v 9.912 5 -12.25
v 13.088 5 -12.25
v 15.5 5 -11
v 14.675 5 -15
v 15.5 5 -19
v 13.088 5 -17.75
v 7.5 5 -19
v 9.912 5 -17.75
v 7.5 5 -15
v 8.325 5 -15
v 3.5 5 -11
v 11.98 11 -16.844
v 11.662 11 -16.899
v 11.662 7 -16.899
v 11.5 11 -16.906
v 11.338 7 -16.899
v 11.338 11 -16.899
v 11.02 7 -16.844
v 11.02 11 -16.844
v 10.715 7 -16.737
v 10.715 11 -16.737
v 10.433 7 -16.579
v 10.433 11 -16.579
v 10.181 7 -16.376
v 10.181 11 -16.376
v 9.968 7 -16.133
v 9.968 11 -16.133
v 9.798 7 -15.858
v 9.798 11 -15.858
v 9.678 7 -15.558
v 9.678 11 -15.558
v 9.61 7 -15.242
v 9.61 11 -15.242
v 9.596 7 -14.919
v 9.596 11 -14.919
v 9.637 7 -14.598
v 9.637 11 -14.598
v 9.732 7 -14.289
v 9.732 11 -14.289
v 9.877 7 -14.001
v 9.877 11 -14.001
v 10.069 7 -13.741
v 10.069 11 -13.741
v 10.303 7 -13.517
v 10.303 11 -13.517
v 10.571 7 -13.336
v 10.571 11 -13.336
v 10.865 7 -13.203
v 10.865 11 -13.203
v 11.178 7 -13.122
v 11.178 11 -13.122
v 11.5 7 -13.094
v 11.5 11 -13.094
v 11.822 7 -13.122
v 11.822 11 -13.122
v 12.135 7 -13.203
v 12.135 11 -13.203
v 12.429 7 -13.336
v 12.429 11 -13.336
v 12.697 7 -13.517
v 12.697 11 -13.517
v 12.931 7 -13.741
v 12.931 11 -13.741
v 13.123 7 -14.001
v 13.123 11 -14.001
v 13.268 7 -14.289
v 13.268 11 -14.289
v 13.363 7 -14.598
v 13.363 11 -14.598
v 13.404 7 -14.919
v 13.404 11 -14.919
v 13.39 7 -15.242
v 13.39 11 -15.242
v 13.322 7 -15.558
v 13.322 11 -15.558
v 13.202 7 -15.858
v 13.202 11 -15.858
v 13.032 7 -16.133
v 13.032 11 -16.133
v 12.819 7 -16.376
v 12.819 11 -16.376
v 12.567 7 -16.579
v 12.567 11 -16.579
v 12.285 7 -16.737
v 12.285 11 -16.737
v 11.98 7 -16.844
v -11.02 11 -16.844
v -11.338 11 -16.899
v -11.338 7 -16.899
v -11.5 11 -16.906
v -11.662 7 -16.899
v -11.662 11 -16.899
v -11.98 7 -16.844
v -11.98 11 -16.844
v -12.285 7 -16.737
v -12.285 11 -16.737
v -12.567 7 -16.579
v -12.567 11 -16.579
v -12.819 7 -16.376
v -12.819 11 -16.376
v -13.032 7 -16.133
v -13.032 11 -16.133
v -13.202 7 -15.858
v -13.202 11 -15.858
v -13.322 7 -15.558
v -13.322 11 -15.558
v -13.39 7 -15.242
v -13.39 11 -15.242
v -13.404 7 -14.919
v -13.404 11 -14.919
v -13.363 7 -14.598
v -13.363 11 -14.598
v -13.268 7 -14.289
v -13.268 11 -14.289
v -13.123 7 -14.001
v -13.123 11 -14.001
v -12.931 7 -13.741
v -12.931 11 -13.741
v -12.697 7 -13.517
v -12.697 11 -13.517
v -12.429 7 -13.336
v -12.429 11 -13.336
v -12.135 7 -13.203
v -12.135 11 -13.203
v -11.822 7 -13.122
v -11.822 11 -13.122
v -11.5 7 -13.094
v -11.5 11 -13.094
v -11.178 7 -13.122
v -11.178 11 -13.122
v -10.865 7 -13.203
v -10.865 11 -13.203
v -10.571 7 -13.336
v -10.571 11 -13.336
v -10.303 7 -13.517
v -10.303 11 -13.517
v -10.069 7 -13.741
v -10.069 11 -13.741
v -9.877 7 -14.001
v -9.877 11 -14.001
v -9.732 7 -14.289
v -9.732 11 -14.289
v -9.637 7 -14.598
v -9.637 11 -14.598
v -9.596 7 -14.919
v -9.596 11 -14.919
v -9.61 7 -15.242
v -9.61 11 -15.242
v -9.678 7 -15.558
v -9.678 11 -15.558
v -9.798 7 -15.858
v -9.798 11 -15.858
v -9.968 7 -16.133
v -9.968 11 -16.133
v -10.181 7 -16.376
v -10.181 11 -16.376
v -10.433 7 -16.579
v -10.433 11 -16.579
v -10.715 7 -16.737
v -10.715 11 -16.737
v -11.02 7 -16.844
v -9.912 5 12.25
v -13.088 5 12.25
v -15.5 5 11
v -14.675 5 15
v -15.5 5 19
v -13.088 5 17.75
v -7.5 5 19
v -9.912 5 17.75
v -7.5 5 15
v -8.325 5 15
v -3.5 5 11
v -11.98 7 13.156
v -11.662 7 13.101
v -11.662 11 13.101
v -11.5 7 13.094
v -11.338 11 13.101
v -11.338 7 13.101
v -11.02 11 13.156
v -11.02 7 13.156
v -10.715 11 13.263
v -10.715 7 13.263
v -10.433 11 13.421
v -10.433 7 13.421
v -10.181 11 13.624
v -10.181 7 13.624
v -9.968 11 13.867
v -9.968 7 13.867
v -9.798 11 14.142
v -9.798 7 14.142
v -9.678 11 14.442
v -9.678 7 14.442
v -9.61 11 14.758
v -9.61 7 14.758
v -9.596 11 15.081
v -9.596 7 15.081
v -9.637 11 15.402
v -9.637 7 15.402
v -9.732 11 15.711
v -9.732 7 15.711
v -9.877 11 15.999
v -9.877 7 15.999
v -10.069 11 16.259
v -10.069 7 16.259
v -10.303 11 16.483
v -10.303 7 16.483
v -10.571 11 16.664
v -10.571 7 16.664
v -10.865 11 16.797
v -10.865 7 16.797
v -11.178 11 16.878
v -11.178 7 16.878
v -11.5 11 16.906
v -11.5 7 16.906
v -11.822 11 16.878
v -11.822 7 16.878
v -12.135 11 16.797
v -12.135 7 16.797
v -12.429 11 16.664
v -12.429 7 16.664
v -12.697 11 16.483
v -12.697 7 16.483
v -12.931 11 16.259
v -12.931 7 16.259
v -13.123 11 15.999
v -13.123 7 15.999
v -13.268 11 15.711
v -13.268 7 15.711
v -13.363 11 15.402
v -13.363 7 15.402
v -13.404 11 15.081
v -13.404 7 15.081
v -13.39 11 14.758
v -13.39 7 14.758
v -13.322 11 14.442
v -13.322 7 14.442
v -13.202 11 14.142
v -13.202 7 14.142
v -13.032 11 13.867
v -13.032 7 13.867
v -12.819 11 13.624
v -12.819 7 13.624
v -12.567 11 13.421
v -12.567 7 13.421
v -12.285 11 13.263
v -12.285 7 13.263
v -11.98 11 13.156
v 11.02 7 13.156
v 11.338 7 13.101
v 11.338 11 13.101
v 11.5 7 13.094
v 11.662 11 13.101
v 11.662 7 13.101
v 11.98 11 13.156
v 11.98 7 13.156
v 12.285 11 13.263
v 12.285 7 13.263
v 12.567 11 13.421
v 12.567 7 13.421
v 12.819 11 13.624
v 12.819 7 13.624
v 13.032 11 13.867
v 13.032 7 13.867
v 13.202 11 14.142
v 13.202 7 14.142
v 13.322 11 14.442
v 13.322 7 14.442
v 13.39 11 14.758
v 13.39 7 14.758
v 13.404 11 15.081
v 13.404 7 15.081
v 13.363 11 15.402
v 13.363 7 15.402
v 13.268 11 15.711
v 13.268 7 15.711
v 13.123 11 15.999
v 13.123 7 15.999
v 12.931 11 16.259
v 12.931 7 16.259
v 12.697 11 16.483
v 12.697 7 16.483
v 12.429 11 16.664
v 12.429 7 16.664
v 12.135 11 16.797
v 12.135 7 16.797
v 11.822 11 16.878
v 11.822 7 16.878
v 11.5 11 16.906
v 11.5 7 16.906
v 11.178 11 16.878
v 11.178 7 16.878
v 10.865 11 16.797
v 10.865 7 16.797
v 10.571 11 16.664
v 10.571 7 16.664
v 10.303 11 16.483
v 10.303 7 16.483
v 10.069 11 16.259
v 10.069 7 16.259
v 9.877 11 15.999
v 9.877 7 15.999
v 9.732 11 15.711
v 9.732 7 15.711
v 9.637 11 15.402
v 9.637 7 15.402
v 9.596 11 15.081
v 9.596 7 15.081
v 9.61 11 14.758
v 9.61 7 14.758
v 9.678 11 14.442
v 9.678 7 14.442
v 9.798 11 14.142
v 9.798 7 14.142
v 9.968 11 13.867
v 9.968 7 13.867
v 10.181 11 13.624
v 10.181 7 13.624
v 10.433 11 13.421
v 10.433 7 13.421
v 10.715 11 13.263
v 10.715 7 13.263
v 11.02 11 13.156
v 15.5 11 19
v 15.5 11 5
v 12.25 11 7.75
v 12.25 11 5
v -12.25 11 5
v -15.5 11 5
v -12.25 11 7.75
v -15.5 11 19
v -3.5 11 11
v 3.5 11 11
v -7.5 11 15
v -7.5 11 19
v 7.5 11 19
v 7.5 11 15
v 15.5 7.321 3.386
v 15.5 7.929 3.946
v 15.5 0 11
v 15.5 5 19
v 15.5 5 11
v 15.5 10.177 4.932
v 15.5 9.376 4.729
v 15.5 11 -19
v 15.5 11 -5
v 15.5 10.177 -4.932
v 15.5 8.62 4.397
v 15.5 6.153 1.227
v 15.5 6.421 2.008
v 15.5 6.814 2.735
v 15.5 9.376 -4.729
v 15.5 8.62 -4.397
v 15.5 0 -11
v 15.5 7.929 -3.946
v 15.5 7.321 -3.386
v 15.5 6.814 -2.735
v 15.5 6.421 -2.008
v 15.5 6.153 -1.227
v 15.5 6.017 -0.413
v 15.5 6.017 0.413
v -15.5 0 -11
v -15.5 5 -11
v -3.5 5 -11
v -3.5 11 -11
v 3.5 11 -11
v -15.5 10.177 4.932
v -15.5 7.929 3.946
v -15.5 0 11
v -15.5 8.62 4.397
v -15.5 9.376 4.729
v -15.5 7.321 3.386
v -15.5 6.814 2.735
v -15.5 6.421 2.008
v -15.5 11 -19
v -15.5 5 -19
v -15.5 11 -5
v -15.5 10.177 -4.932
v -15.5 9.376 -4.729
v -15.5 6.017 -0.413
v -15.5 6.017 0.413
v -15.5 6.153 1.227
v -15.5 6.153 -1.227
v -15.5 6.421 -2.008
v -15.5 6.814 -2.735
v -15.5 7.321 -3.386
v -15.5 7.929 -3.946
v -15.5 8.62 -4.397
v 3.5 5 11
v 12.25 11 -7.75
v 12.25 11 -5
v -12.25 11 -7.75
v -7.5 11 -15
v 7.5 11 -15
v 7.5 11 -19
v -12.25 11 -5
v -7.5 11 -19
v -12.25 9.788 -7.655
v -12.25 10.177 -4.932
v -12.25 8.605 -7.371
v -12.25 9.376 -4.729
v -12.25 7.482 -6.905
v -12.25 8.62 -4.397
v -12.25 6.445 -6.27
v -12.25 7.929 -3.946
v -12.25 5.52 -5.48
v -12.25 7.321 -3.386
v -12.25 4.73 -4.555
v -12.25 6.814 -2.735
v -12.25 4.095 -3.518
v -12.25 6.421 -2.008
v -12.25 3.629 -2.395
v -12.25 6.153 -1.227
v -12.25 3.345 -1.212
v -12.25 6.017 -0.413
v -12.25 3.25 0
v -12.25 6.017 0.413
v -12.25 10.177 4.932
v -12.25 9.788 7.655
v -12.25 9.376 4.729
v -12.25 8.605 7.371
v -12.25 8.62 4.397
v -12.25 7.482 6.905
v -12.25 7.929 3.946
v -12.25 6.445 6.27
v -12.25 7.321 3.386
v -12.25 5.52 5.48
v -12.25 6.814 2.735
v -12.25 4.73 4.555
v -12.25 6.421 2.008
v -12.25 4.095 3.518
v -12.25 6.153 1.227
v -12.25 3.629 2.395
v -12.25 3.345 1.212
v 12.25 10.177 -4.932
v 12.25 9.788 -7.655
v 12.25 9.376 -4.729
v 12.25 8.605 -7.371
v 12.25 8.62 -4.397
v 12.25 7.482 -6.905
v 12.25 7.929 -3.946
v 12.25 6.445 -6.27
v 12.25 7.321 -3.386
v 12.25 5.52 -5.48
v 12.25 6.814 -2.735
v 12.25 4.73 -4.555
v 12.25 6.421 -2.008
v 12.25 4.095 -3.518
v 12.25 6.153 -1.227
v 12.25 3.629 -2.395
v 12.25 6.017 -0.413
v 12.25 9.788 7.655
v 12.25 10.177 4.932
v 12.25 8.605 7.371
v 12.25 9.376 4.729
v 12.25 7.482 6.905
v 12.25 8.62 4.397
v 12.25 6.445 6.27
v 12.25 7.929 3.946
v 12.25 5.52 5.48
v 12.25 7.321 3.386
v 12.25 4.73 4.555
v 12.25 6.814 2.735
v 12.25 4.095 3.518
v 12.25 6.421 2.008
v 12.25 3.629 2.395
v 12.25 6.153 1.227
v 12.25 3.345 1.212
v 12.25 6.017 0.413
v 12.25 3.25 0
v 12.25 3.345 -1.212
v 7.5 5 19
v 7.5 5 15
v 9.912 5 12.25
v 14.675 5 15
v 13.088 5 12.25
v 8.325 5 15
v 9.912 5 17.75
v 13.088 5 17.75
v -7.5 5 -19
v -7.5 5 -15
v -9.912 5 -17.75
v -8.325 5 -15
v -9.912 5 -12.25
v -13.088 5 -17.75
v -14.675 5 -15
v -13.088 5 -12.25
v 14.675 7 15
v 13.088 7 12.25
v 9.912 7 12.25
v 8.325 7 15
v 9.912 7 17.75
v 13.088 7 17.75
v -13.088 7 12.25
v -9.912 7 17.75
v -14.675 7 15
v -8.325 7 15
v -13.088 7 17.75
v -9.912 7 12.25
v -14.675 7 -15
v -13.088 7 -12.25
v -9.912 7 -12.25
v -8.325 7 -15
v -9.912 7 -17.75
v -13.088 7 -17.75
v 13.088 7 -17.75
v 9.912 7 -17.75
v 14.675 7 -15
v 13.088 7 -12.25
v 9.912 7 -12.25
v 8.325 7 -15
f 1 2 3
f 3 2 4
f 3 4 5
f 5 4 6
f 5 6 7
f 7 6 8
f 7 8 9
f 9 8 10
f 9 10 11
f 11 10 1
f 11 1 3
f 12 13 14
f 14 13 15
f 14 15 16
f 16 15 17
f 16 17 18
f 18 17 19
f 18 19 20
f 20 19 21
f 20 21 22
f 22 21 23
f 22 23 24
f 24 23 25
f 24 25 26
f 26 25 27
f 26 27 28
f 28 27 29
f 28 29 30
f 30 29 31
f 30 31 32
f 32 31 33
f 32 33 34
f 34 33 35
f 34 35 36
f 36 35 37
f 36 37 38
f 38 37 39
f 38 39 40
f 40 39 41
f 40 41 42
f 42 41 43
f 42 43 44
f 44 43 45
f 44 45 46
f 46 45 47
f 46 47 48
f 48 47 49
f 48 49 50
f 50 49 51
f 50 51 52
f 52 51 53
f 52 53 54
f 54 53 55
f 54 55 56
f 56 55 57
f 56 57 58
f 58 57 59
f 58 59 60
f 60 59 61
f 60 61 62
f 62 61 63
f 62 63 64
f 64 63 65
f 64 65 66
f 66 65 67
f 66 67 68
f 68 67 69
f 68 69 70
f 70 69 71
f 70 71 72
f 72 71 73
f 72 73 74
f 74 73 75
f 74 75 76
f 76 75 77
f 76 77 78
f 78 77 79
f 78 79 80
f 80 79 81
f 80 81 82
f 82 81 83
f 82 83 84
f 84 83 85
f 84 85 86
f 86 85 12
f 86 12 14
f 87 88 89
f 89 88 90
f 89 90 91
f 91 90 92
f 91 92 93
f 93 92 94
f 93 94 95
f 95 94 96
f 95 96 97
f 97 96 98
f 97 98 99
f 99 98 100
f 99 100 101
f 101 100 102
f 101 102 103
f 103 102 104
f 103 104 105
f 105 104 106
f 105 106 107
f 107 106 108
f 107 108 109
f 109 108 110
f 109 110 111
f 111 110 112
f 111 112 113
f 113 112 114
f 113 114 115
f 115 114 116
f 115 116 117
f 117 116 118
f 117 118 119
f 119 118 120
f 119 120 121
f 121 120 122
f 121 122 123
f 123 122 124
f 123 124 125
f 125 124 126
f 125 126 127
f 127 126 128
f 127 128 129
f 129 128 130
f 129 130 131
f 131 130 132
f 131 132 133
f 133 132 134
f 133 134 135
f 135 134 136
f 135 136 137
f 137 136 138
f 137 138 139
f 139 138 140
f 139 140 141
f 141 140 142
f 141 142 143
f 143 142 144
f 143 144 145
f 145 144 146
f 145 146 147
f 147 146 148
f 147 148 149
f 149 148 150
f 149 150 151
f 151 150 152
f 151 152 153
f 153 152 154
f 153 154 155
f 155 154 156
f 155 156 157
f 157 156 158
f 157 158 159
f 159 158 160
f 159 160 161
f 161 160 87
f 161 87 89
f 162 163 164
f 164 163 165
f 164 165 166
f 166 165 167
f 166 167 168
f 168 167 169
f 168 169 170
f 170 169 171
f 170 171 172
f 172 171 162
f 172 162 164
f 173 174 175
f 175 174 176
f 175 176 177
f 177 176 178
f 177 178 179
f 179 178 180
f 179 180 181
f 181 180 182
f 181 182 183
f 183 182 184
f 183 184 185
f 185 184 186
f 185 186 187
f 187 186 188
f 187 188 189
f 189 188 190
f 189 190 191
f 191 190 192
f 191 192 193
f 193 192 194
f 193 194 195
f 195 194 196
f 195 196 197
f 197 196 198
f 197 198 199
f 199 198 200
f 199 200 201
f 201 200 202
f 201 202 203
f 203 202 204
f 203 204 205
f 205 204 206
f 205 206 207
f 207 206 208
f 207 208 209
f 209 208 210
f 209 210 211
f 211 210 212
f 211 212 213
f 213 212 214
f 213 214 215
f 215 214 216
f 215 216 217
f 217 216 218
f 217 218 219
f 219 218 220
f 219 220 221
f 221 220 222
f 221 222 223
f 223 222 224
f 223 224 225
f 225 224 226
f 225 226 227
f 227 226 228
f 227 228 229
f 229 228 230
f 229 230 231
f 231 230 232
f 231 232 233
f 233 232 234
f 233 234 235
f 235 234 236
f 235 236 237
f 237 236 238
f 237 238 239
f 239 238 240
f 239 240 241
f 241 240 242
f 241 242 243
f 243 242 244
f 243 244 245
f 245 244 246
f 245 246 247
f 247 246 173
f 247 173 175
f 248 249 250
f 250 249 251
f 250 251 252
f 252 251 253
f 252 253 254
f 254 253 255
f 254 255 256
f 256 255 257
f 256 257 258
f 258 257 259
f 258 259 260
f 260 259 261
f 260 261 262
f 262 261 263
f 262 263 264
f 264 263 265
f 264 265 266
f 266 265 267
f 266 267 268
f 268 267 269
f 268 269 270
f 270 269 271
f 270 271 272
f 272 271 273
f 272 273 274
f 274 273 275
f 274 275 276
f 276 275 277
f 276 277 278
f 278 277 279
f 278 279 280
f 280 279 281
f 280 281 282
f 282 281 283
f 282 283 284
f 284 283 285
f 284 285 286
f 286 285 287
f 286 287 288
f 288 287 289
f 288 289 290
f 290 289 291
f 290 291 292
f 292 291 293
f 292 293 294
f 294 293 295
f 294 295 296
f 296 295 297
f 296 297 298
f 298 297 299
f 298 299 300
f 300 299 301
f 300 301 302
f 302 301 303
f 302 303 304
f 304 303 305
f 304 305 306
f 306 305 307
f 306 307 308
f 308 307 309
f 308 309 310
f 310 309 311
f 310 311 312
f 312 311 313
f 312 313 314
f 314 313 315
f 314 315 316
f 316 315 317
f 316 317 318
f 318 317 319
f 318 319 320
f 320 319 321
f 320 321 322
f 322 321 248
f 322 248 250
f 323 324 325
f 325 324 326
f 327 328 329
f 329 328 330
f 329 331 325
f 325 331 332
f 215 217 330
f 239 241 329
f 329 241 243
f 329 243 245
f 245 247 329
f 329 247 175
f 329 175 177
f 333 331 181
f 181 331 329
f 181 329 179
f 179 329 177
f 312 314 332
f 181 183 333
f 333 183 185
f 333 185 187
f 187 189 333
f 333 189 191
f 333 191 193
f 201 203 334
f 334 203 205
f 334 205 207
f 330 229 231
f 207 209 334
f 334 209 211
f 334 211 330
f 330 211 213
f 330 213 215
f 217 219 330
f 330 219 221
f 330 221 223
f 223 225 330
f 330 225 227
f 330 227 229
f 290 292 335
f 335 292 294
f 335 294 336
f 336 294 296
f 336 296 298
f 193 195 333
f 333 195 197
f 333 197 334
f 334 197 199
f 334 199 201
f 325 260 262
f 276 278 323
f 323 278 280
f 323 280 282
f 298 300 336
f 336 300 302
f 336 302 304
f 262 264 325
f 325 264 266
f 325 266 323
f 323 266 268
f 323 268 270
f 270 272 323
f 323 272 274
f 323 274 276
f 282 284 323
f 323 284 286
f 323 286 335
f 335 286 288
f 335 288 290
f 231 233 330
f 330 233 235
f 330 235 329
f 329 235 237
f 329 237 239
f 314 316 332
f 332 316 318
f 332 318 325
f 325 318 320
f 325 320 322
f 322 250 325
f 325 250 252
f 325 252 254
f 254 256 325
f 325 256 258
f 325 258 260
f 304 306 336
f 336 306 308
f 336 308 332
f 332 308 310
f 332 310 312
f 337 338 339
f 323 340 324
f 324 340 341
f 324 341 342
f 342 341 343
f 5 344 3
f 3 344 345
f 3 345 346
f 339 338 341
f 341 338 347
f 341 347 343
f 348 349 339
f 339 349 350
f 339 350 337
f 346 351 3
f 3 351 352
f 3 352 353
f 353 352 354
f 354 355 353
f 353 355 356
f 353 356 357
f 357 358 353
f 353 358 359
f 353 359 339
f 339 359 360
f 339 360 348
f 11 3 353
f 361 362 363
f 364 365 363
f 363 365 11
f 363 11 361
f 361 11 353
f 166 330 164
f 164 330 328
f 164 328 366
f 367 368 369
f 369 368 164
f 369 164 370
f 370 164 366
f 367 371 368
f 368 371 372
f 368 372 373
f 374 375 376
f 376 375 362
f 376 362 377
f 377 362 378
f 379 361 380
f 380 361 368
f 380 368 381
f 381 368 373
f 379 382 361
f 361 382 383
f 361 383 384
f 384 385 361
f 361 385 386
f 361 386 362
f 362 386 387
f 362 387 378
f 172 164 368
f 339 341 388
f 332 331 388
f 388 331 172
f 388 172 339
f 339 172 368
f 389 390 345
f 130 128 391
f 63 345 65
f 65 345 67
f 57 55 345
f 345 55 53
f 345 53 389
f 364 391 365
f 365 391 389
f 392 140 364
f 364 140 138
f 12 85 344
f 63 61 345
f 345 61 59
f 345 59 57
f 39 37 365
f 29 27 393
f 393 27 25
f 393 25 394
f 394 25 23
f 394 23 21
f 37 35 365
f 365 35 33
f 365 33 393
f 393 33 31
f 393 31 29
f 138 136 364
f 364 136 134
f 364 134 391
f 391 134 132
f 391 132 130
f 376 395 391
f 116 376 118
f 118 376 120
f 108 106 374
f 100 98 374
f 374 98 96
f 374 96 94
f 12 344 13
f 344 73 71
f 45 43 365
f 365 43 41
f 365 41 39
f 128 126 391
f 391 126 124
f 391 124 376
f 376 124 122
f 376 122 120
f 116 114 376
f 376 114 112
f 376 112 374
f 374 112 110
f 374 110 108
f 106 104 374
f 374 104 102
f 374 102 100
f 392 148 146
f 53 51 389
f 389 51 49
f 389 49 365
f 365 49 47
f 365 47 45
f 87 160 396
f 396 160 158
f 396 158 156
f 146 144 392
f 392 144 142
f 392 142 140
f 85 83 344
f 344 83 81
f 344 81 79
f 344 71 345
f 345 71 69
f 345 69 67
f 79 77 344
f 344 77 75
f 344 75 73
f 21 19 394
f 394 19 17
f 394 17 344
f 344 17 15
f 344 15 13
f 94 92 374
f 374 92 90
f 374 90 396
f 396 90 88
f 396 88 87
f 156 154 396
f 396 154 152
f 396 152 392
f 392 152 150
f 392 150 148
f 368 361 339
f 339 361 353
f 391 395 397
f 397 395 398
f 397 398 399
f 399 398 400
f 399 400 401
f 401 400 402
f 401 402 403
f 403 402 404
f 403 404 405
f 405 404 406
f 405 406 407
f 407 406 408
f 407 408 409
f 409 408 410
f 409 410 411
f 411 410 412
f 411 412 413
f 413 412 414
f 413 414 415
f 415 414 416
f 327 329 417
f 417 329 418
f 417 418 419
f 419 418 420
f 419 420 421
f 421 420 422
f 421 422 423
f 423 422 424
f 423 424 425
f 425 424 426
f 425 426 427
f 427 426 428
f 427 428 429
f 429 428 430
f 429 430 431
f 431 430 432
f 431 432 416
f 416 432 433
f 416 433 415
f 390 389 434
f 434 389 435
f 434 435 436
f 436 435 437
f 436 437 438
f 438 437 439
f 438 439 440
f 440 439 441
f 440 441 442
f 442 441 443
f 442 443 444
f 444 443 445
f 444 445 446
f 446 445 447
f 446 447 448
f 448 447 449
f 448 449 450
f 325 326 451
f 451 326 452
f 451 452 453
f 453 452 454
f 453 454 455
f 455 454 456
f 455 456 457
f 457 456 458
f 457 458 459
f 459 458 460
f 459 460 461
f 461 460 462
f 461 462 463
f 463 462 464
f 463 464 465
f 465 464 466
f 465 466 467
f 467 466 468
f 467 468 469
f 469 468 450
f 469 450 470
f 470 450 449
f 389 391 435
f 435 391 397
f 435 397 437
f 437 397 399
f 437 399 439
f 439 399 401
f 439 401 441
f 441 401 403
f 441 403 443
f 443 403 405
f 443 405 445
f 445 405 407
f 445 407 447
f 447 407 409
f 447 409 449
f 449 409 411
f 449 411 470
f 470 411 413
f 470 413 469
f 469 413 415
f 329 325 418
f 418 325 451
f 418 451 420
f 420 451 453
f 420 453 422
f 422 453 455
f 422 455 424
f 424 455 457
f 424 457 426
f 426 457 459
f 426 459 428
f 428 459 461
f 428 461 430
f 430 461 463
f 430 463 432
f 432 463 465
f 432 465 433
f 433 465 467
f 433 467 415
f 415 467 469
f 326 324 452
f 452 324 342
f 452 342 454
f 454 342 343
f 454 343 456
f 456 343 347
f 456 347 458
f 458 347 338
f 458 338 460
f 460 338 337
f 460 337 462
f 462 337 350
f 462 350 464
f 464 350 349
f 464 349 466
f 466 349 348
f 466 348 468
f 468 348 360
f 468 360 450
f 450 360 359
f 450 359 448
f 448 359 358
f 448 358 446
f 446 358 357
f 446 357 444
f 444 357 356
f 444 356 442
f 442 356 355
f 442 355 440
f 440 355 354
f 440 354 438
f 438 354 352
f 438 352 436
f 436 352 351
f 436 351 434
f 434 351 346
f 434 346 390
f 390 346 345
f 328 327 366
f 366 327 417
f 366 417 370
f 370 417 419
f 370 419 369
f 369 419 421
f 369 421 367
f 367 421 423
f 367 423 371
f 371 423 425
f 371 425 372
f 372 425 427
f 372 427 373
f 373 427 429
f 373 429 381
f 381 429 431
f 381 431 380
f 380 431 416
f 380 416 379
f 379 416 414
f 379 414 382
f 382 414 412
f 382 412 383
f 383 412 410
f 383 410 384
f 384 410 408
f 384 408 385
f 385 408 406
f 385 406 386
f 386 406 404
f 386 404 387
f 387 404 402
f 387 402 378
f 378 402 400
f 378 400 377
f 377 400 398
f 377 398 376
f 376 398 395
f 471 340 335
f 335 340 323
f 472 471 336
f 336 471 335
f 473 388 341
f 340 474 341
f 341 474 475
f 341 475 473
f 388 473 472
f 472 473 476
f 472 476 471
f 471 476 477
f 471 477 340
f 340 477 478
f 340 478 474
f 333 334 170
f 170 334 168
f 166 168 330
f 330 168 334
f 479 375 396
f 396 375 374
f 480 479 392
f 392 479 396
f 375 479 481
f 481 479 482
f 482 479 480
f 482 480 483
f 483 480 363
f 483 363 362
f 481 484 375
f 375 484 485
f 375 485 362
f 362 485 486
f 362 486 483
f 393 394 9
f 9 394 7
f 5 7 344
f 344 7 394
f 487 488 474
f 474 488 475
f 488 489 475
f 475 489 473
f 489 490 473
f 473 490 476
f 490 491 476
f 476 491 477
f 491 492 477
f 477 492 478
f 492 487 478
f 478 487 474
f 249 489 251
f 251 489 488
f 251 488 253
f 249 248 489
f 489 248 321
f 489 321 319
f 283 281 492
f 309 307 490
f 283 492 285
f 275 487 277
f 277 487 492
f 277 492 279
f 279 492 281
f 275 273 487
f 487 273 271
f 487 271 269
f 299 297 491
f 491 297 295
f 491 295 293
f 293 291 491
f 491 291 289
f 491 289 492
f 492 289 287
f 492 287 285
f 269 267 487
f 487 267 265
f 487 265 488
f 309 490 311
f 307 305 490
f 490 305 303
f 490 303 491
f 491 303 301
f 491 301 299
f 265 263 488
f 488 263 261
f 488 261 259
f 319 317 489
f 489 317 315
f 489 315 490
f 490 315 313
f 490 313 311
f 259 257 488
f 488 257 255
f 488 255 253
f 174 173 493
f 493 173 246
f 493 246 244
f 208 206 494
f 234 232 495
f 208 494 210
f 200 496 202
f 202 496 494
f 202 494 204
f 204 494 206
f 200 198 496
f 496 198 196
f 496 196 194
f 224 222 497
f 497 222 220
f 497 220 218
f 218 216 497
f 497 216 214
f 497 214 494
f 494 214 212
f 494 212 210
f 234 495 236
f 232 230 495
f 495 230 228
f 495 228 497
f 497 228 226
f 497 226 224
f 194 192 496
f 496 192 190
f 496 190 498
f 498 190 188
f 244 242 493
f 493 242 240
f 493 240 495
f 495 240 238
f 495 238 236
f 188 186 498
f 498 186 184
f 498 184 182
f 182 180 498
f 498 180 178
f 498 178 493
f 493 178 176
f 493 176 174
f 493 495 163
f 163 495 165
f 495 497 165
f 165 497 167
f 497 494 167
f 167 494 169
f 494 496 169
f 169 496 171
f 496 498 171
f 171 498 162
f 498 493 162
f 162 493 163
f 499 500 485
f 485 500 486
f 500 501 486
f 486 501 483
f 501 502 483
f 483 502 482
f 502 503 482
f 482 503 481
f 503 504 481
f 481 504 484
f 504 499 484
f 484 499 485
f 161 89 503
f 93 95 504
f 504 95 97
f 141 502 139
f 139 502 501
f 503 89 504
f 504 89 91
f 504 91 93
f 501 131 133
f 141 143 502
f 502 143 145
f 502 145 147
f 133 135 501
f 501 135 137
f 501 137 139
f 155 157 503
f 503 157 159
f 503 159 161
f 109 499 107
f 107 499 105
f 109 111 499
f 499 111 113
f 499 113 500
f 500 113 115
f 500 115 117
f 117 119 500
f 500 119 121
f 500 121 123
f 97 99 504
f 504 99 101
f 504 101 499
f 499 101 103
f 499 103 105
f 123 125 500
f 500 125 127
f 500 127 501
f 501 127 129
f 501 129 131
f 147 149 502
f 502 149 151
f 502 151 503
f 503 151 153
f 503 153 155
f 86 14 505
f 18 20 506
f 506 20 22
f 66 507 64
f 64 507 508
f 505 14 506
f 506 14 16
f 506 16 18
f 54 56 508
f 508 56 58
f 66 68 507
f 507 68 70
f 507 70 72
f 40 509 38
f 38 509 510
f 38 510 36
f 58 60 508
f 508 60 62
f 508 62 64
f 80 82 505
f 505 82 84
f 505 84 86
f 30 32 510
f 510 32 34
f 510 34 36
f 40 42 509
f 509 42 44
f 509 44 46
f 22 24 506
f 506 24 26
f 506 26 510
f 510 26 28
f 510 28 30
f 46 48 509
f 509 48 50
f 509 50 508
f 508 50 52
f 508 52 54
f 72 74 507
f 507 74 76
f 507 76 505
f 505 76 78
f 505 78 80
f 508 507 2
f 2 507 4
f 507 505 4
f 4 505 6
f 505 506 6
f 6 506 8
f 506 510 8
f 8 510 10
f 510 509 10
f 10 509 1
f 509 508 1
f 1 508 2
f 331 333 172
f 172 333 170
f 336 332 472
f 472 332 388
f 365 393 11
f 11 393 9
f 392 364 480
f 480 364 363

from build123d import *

# Parameters (mm, degrees)
SKETCH1_W                = 31
SKETCH1_H                = 22
BOSS_EXTRUDE1_DEPTH      = 11
SKETCH3_W                = 24.5
SKETCH3_H                = 15.5
CUT_EXTRUDE1_DEPTH       = 7.75
FILLET1_R                = 7.75
CUT_EXTRUDE2_DEPTH       = 32.812929761
CUT_EXTRUDE2_DEPTH_BACK  = 32.812929761
SKETCH4_R                = 5
SKETCH5_W                = 8
SKETCH5_H                = 8
SKETCH5_R                = 1.905800151
BOSS_EXTRUDE3_DEPTH      = 6
MIRROR9_COPY_1_SKETCH_W  = 8
MIRROR9_COPY_1_SKETCH_H  = 8
MIRROR9_COPY_1_SKETCH_R  = 1.905800151
MIRROR9_COPY_1_DEPTH     = 6
CUT_EXTRUDE4_START       = -2
SKETCH7_R                = 1.905800151
CUT_EXTRUDE4_DEPTH       = 2
MIRROR11_START           = -2
MIRROR11_COPY_1_SKETCH_R = 1.905800151
MIRROR11_COPY_1_DEPTH    = 2
CHAMFER3_SIZE            = 4


with BuildPart() as part:
    # Sketch1 → Boss-Extrude1 (new body)
    with BuildSketch(Plane(origin=(0, 0, 0), x_dir=(1, 0, 0), z_dir=(0, 1, 0))):
        Rectangle(SKETCH1_W, SKETCH1_H)
    extrude(amount=BOSS_EXTRUDE1_DEPTH)

    # Sketch3 → Cut-Extrude1 (cut)
    with BuildSketch(Plane(origin=(0, 11, 0), x_dir=(1, 0, 0), z_dir=(0, 1, 0))):
        Rectangle(SKETCH3_W, SKETCH3_H)
    extrude(amount=-CUT_EXTRUDE1_DEPTH, mode=Mode.SUBTRACT)

    # Fillet1
    fillet1_edges = [part.edges().sort_by_distance(p)[0] for p in [
        (0, 3.25, 7.75),
        (0, 3.25, -7.75),
    ]]
    fillet(fillet1_edges, radius=FILLET1_R - 0.0001)  # a hair under: the kernel refuses the full size

    # Sketch4 → Cut-Extrude2 (cut, two sides: drawn at the far end of the back side and taken through both)
    with BuildSketch(Plane(origin=(-12.25, 0, 0), x_dir=(0, 0, -1), z_dir=(1, 0, 0)).offset(-CUT_EXTRUDE2_DEPTH_BACK)):
        with Locations((0, 11)):
            Circle(SKETCH4_R)
    extrude(amount=CUT_EXTRUDE2_DEPTH + CUT_EXTRUDE2_DEPTH_BACK, mode=Mode.SUBTRACT)

    # Sketch5 → Boss-Extrude3 (add)
    with BuildSketch(Plane(origin=(0, 11, 0), x_dir=(1, 0, 0), z_dir=(0, 1, 0))):
        with Locations((11.5, -15)):
            Rectangle(SKETCH5_W, SKETCH5_H)
        with Locations(Location((11.5, -15, 0), (0, 0, 270))):
            Circle(SKETCH5_R, mode=Mode.SUBTRACT)
    boss_extrude3 = extrude(amount=-BOSS_EXTRUDE3_DEPTH)

    # Mirror8: Boss-Extrude3 across plane
    add(boss_extrude3.mirror(Plane(origin=(0, 0, 0), x_dir=(0, 0, 1), z_dir=(1, 0, 0))))

    # Mirror9: Boss-Extrude3 across plane
    add(boss_extrude3.mirror(Plane.XY))

    # Mirror9 copy 1 sketch → Mirror9 copy 1 (add)
    with BuildSketch(Plane(origin=(0, 11, 0), x_dir=(-1, 0, 0), z_dir=(0, 1, 0))):
        with Locations((11.5, -15)):
            Rectangle(MIRROR9_COPY_1_SKETCH_W, MIRROR9_COPY_1_SKETCH_H)
        with Locations(Location((11.5, -15, 0), (0, 0, 270))):
            Circle(MIRROR9_COPY_1_SKETCH_R, mode=Mode.SUBTRACT)
    extrude(amount=-MIRROR9_COPY_1_DEPTH)

    # Sketch7 → Cut-Extrude4 (cut)
    with BuildSketch(Plane.XZ.offset(-5).offset(CUT_EXTRUDE4_START)):
        Polygon((14.675426481, 15), (13.08771324, 17.75), (9.91228676, 17.75), (8.324573519, 15), (9.91228676, 12.25), (13.08771324, 12.25), align=None)
        with Locations(Location((11.5, 15, 0), (0, 0, 90))):
            Circle(SKETCH7_R, mode=Mode.SUBTRACT)
    cut_extrude4 = extrude(amount=CUT_EXTRUDE4_DEPTH, mode=Mode.SUBTRACT)

    # Mirror10: Cut-Extrude4 across plane
    add(cut_extrude4.mirror(Plane(origin=(0, 0, 0), x_dir=(0, 0, 1), z_dir=(1, 0, 0))), mode=Mode.SUBTRACT)

    # Mirror11: Cut-Extrude4 across plane
    add(cut_extrude4.mirror(Plane.XY), mode=Mode.SUBTRACT)

    # Mirror11 copy 1 sketch → Mirror11 copy 1 (cut)
    with BuildSketch(Plane(origin=(0, 5, 0), x_dir=(-1, 0, 0), z_dir=(0, -1, 0)).offset(MIRROR11_START)):
        Polygon((14.675426481, 15), (13.08771324, 17.75), (9.91228676, 17.75), (8.324573519, 15), (9.91228676, 12.25), (13.08771324, 12.25), align=None)
        with Locations(Location((11.5, 15, 0), (0, 0, 90))):
            Circle(MIRROR11_COPY_1_SKETCH_R, mode=Mode.SUBTRACT)
    extrude(amount=MIRROR11_COPY_1_DEPTH, mode=Mode.SUBTRACT)

    # Chamfer3
    chamfer3_edges = [part.edges().sort_by_distance(p)[0] for p in [
        (7.5, 8, 11),
        (-7.5, 8, 11),
        (-7.5, 8, -11),
        (7.5, 8, -11),
    ]]
    chamfer(chamfer3_edges, length=CHAMFER3_SIZE)


solid = part.part
